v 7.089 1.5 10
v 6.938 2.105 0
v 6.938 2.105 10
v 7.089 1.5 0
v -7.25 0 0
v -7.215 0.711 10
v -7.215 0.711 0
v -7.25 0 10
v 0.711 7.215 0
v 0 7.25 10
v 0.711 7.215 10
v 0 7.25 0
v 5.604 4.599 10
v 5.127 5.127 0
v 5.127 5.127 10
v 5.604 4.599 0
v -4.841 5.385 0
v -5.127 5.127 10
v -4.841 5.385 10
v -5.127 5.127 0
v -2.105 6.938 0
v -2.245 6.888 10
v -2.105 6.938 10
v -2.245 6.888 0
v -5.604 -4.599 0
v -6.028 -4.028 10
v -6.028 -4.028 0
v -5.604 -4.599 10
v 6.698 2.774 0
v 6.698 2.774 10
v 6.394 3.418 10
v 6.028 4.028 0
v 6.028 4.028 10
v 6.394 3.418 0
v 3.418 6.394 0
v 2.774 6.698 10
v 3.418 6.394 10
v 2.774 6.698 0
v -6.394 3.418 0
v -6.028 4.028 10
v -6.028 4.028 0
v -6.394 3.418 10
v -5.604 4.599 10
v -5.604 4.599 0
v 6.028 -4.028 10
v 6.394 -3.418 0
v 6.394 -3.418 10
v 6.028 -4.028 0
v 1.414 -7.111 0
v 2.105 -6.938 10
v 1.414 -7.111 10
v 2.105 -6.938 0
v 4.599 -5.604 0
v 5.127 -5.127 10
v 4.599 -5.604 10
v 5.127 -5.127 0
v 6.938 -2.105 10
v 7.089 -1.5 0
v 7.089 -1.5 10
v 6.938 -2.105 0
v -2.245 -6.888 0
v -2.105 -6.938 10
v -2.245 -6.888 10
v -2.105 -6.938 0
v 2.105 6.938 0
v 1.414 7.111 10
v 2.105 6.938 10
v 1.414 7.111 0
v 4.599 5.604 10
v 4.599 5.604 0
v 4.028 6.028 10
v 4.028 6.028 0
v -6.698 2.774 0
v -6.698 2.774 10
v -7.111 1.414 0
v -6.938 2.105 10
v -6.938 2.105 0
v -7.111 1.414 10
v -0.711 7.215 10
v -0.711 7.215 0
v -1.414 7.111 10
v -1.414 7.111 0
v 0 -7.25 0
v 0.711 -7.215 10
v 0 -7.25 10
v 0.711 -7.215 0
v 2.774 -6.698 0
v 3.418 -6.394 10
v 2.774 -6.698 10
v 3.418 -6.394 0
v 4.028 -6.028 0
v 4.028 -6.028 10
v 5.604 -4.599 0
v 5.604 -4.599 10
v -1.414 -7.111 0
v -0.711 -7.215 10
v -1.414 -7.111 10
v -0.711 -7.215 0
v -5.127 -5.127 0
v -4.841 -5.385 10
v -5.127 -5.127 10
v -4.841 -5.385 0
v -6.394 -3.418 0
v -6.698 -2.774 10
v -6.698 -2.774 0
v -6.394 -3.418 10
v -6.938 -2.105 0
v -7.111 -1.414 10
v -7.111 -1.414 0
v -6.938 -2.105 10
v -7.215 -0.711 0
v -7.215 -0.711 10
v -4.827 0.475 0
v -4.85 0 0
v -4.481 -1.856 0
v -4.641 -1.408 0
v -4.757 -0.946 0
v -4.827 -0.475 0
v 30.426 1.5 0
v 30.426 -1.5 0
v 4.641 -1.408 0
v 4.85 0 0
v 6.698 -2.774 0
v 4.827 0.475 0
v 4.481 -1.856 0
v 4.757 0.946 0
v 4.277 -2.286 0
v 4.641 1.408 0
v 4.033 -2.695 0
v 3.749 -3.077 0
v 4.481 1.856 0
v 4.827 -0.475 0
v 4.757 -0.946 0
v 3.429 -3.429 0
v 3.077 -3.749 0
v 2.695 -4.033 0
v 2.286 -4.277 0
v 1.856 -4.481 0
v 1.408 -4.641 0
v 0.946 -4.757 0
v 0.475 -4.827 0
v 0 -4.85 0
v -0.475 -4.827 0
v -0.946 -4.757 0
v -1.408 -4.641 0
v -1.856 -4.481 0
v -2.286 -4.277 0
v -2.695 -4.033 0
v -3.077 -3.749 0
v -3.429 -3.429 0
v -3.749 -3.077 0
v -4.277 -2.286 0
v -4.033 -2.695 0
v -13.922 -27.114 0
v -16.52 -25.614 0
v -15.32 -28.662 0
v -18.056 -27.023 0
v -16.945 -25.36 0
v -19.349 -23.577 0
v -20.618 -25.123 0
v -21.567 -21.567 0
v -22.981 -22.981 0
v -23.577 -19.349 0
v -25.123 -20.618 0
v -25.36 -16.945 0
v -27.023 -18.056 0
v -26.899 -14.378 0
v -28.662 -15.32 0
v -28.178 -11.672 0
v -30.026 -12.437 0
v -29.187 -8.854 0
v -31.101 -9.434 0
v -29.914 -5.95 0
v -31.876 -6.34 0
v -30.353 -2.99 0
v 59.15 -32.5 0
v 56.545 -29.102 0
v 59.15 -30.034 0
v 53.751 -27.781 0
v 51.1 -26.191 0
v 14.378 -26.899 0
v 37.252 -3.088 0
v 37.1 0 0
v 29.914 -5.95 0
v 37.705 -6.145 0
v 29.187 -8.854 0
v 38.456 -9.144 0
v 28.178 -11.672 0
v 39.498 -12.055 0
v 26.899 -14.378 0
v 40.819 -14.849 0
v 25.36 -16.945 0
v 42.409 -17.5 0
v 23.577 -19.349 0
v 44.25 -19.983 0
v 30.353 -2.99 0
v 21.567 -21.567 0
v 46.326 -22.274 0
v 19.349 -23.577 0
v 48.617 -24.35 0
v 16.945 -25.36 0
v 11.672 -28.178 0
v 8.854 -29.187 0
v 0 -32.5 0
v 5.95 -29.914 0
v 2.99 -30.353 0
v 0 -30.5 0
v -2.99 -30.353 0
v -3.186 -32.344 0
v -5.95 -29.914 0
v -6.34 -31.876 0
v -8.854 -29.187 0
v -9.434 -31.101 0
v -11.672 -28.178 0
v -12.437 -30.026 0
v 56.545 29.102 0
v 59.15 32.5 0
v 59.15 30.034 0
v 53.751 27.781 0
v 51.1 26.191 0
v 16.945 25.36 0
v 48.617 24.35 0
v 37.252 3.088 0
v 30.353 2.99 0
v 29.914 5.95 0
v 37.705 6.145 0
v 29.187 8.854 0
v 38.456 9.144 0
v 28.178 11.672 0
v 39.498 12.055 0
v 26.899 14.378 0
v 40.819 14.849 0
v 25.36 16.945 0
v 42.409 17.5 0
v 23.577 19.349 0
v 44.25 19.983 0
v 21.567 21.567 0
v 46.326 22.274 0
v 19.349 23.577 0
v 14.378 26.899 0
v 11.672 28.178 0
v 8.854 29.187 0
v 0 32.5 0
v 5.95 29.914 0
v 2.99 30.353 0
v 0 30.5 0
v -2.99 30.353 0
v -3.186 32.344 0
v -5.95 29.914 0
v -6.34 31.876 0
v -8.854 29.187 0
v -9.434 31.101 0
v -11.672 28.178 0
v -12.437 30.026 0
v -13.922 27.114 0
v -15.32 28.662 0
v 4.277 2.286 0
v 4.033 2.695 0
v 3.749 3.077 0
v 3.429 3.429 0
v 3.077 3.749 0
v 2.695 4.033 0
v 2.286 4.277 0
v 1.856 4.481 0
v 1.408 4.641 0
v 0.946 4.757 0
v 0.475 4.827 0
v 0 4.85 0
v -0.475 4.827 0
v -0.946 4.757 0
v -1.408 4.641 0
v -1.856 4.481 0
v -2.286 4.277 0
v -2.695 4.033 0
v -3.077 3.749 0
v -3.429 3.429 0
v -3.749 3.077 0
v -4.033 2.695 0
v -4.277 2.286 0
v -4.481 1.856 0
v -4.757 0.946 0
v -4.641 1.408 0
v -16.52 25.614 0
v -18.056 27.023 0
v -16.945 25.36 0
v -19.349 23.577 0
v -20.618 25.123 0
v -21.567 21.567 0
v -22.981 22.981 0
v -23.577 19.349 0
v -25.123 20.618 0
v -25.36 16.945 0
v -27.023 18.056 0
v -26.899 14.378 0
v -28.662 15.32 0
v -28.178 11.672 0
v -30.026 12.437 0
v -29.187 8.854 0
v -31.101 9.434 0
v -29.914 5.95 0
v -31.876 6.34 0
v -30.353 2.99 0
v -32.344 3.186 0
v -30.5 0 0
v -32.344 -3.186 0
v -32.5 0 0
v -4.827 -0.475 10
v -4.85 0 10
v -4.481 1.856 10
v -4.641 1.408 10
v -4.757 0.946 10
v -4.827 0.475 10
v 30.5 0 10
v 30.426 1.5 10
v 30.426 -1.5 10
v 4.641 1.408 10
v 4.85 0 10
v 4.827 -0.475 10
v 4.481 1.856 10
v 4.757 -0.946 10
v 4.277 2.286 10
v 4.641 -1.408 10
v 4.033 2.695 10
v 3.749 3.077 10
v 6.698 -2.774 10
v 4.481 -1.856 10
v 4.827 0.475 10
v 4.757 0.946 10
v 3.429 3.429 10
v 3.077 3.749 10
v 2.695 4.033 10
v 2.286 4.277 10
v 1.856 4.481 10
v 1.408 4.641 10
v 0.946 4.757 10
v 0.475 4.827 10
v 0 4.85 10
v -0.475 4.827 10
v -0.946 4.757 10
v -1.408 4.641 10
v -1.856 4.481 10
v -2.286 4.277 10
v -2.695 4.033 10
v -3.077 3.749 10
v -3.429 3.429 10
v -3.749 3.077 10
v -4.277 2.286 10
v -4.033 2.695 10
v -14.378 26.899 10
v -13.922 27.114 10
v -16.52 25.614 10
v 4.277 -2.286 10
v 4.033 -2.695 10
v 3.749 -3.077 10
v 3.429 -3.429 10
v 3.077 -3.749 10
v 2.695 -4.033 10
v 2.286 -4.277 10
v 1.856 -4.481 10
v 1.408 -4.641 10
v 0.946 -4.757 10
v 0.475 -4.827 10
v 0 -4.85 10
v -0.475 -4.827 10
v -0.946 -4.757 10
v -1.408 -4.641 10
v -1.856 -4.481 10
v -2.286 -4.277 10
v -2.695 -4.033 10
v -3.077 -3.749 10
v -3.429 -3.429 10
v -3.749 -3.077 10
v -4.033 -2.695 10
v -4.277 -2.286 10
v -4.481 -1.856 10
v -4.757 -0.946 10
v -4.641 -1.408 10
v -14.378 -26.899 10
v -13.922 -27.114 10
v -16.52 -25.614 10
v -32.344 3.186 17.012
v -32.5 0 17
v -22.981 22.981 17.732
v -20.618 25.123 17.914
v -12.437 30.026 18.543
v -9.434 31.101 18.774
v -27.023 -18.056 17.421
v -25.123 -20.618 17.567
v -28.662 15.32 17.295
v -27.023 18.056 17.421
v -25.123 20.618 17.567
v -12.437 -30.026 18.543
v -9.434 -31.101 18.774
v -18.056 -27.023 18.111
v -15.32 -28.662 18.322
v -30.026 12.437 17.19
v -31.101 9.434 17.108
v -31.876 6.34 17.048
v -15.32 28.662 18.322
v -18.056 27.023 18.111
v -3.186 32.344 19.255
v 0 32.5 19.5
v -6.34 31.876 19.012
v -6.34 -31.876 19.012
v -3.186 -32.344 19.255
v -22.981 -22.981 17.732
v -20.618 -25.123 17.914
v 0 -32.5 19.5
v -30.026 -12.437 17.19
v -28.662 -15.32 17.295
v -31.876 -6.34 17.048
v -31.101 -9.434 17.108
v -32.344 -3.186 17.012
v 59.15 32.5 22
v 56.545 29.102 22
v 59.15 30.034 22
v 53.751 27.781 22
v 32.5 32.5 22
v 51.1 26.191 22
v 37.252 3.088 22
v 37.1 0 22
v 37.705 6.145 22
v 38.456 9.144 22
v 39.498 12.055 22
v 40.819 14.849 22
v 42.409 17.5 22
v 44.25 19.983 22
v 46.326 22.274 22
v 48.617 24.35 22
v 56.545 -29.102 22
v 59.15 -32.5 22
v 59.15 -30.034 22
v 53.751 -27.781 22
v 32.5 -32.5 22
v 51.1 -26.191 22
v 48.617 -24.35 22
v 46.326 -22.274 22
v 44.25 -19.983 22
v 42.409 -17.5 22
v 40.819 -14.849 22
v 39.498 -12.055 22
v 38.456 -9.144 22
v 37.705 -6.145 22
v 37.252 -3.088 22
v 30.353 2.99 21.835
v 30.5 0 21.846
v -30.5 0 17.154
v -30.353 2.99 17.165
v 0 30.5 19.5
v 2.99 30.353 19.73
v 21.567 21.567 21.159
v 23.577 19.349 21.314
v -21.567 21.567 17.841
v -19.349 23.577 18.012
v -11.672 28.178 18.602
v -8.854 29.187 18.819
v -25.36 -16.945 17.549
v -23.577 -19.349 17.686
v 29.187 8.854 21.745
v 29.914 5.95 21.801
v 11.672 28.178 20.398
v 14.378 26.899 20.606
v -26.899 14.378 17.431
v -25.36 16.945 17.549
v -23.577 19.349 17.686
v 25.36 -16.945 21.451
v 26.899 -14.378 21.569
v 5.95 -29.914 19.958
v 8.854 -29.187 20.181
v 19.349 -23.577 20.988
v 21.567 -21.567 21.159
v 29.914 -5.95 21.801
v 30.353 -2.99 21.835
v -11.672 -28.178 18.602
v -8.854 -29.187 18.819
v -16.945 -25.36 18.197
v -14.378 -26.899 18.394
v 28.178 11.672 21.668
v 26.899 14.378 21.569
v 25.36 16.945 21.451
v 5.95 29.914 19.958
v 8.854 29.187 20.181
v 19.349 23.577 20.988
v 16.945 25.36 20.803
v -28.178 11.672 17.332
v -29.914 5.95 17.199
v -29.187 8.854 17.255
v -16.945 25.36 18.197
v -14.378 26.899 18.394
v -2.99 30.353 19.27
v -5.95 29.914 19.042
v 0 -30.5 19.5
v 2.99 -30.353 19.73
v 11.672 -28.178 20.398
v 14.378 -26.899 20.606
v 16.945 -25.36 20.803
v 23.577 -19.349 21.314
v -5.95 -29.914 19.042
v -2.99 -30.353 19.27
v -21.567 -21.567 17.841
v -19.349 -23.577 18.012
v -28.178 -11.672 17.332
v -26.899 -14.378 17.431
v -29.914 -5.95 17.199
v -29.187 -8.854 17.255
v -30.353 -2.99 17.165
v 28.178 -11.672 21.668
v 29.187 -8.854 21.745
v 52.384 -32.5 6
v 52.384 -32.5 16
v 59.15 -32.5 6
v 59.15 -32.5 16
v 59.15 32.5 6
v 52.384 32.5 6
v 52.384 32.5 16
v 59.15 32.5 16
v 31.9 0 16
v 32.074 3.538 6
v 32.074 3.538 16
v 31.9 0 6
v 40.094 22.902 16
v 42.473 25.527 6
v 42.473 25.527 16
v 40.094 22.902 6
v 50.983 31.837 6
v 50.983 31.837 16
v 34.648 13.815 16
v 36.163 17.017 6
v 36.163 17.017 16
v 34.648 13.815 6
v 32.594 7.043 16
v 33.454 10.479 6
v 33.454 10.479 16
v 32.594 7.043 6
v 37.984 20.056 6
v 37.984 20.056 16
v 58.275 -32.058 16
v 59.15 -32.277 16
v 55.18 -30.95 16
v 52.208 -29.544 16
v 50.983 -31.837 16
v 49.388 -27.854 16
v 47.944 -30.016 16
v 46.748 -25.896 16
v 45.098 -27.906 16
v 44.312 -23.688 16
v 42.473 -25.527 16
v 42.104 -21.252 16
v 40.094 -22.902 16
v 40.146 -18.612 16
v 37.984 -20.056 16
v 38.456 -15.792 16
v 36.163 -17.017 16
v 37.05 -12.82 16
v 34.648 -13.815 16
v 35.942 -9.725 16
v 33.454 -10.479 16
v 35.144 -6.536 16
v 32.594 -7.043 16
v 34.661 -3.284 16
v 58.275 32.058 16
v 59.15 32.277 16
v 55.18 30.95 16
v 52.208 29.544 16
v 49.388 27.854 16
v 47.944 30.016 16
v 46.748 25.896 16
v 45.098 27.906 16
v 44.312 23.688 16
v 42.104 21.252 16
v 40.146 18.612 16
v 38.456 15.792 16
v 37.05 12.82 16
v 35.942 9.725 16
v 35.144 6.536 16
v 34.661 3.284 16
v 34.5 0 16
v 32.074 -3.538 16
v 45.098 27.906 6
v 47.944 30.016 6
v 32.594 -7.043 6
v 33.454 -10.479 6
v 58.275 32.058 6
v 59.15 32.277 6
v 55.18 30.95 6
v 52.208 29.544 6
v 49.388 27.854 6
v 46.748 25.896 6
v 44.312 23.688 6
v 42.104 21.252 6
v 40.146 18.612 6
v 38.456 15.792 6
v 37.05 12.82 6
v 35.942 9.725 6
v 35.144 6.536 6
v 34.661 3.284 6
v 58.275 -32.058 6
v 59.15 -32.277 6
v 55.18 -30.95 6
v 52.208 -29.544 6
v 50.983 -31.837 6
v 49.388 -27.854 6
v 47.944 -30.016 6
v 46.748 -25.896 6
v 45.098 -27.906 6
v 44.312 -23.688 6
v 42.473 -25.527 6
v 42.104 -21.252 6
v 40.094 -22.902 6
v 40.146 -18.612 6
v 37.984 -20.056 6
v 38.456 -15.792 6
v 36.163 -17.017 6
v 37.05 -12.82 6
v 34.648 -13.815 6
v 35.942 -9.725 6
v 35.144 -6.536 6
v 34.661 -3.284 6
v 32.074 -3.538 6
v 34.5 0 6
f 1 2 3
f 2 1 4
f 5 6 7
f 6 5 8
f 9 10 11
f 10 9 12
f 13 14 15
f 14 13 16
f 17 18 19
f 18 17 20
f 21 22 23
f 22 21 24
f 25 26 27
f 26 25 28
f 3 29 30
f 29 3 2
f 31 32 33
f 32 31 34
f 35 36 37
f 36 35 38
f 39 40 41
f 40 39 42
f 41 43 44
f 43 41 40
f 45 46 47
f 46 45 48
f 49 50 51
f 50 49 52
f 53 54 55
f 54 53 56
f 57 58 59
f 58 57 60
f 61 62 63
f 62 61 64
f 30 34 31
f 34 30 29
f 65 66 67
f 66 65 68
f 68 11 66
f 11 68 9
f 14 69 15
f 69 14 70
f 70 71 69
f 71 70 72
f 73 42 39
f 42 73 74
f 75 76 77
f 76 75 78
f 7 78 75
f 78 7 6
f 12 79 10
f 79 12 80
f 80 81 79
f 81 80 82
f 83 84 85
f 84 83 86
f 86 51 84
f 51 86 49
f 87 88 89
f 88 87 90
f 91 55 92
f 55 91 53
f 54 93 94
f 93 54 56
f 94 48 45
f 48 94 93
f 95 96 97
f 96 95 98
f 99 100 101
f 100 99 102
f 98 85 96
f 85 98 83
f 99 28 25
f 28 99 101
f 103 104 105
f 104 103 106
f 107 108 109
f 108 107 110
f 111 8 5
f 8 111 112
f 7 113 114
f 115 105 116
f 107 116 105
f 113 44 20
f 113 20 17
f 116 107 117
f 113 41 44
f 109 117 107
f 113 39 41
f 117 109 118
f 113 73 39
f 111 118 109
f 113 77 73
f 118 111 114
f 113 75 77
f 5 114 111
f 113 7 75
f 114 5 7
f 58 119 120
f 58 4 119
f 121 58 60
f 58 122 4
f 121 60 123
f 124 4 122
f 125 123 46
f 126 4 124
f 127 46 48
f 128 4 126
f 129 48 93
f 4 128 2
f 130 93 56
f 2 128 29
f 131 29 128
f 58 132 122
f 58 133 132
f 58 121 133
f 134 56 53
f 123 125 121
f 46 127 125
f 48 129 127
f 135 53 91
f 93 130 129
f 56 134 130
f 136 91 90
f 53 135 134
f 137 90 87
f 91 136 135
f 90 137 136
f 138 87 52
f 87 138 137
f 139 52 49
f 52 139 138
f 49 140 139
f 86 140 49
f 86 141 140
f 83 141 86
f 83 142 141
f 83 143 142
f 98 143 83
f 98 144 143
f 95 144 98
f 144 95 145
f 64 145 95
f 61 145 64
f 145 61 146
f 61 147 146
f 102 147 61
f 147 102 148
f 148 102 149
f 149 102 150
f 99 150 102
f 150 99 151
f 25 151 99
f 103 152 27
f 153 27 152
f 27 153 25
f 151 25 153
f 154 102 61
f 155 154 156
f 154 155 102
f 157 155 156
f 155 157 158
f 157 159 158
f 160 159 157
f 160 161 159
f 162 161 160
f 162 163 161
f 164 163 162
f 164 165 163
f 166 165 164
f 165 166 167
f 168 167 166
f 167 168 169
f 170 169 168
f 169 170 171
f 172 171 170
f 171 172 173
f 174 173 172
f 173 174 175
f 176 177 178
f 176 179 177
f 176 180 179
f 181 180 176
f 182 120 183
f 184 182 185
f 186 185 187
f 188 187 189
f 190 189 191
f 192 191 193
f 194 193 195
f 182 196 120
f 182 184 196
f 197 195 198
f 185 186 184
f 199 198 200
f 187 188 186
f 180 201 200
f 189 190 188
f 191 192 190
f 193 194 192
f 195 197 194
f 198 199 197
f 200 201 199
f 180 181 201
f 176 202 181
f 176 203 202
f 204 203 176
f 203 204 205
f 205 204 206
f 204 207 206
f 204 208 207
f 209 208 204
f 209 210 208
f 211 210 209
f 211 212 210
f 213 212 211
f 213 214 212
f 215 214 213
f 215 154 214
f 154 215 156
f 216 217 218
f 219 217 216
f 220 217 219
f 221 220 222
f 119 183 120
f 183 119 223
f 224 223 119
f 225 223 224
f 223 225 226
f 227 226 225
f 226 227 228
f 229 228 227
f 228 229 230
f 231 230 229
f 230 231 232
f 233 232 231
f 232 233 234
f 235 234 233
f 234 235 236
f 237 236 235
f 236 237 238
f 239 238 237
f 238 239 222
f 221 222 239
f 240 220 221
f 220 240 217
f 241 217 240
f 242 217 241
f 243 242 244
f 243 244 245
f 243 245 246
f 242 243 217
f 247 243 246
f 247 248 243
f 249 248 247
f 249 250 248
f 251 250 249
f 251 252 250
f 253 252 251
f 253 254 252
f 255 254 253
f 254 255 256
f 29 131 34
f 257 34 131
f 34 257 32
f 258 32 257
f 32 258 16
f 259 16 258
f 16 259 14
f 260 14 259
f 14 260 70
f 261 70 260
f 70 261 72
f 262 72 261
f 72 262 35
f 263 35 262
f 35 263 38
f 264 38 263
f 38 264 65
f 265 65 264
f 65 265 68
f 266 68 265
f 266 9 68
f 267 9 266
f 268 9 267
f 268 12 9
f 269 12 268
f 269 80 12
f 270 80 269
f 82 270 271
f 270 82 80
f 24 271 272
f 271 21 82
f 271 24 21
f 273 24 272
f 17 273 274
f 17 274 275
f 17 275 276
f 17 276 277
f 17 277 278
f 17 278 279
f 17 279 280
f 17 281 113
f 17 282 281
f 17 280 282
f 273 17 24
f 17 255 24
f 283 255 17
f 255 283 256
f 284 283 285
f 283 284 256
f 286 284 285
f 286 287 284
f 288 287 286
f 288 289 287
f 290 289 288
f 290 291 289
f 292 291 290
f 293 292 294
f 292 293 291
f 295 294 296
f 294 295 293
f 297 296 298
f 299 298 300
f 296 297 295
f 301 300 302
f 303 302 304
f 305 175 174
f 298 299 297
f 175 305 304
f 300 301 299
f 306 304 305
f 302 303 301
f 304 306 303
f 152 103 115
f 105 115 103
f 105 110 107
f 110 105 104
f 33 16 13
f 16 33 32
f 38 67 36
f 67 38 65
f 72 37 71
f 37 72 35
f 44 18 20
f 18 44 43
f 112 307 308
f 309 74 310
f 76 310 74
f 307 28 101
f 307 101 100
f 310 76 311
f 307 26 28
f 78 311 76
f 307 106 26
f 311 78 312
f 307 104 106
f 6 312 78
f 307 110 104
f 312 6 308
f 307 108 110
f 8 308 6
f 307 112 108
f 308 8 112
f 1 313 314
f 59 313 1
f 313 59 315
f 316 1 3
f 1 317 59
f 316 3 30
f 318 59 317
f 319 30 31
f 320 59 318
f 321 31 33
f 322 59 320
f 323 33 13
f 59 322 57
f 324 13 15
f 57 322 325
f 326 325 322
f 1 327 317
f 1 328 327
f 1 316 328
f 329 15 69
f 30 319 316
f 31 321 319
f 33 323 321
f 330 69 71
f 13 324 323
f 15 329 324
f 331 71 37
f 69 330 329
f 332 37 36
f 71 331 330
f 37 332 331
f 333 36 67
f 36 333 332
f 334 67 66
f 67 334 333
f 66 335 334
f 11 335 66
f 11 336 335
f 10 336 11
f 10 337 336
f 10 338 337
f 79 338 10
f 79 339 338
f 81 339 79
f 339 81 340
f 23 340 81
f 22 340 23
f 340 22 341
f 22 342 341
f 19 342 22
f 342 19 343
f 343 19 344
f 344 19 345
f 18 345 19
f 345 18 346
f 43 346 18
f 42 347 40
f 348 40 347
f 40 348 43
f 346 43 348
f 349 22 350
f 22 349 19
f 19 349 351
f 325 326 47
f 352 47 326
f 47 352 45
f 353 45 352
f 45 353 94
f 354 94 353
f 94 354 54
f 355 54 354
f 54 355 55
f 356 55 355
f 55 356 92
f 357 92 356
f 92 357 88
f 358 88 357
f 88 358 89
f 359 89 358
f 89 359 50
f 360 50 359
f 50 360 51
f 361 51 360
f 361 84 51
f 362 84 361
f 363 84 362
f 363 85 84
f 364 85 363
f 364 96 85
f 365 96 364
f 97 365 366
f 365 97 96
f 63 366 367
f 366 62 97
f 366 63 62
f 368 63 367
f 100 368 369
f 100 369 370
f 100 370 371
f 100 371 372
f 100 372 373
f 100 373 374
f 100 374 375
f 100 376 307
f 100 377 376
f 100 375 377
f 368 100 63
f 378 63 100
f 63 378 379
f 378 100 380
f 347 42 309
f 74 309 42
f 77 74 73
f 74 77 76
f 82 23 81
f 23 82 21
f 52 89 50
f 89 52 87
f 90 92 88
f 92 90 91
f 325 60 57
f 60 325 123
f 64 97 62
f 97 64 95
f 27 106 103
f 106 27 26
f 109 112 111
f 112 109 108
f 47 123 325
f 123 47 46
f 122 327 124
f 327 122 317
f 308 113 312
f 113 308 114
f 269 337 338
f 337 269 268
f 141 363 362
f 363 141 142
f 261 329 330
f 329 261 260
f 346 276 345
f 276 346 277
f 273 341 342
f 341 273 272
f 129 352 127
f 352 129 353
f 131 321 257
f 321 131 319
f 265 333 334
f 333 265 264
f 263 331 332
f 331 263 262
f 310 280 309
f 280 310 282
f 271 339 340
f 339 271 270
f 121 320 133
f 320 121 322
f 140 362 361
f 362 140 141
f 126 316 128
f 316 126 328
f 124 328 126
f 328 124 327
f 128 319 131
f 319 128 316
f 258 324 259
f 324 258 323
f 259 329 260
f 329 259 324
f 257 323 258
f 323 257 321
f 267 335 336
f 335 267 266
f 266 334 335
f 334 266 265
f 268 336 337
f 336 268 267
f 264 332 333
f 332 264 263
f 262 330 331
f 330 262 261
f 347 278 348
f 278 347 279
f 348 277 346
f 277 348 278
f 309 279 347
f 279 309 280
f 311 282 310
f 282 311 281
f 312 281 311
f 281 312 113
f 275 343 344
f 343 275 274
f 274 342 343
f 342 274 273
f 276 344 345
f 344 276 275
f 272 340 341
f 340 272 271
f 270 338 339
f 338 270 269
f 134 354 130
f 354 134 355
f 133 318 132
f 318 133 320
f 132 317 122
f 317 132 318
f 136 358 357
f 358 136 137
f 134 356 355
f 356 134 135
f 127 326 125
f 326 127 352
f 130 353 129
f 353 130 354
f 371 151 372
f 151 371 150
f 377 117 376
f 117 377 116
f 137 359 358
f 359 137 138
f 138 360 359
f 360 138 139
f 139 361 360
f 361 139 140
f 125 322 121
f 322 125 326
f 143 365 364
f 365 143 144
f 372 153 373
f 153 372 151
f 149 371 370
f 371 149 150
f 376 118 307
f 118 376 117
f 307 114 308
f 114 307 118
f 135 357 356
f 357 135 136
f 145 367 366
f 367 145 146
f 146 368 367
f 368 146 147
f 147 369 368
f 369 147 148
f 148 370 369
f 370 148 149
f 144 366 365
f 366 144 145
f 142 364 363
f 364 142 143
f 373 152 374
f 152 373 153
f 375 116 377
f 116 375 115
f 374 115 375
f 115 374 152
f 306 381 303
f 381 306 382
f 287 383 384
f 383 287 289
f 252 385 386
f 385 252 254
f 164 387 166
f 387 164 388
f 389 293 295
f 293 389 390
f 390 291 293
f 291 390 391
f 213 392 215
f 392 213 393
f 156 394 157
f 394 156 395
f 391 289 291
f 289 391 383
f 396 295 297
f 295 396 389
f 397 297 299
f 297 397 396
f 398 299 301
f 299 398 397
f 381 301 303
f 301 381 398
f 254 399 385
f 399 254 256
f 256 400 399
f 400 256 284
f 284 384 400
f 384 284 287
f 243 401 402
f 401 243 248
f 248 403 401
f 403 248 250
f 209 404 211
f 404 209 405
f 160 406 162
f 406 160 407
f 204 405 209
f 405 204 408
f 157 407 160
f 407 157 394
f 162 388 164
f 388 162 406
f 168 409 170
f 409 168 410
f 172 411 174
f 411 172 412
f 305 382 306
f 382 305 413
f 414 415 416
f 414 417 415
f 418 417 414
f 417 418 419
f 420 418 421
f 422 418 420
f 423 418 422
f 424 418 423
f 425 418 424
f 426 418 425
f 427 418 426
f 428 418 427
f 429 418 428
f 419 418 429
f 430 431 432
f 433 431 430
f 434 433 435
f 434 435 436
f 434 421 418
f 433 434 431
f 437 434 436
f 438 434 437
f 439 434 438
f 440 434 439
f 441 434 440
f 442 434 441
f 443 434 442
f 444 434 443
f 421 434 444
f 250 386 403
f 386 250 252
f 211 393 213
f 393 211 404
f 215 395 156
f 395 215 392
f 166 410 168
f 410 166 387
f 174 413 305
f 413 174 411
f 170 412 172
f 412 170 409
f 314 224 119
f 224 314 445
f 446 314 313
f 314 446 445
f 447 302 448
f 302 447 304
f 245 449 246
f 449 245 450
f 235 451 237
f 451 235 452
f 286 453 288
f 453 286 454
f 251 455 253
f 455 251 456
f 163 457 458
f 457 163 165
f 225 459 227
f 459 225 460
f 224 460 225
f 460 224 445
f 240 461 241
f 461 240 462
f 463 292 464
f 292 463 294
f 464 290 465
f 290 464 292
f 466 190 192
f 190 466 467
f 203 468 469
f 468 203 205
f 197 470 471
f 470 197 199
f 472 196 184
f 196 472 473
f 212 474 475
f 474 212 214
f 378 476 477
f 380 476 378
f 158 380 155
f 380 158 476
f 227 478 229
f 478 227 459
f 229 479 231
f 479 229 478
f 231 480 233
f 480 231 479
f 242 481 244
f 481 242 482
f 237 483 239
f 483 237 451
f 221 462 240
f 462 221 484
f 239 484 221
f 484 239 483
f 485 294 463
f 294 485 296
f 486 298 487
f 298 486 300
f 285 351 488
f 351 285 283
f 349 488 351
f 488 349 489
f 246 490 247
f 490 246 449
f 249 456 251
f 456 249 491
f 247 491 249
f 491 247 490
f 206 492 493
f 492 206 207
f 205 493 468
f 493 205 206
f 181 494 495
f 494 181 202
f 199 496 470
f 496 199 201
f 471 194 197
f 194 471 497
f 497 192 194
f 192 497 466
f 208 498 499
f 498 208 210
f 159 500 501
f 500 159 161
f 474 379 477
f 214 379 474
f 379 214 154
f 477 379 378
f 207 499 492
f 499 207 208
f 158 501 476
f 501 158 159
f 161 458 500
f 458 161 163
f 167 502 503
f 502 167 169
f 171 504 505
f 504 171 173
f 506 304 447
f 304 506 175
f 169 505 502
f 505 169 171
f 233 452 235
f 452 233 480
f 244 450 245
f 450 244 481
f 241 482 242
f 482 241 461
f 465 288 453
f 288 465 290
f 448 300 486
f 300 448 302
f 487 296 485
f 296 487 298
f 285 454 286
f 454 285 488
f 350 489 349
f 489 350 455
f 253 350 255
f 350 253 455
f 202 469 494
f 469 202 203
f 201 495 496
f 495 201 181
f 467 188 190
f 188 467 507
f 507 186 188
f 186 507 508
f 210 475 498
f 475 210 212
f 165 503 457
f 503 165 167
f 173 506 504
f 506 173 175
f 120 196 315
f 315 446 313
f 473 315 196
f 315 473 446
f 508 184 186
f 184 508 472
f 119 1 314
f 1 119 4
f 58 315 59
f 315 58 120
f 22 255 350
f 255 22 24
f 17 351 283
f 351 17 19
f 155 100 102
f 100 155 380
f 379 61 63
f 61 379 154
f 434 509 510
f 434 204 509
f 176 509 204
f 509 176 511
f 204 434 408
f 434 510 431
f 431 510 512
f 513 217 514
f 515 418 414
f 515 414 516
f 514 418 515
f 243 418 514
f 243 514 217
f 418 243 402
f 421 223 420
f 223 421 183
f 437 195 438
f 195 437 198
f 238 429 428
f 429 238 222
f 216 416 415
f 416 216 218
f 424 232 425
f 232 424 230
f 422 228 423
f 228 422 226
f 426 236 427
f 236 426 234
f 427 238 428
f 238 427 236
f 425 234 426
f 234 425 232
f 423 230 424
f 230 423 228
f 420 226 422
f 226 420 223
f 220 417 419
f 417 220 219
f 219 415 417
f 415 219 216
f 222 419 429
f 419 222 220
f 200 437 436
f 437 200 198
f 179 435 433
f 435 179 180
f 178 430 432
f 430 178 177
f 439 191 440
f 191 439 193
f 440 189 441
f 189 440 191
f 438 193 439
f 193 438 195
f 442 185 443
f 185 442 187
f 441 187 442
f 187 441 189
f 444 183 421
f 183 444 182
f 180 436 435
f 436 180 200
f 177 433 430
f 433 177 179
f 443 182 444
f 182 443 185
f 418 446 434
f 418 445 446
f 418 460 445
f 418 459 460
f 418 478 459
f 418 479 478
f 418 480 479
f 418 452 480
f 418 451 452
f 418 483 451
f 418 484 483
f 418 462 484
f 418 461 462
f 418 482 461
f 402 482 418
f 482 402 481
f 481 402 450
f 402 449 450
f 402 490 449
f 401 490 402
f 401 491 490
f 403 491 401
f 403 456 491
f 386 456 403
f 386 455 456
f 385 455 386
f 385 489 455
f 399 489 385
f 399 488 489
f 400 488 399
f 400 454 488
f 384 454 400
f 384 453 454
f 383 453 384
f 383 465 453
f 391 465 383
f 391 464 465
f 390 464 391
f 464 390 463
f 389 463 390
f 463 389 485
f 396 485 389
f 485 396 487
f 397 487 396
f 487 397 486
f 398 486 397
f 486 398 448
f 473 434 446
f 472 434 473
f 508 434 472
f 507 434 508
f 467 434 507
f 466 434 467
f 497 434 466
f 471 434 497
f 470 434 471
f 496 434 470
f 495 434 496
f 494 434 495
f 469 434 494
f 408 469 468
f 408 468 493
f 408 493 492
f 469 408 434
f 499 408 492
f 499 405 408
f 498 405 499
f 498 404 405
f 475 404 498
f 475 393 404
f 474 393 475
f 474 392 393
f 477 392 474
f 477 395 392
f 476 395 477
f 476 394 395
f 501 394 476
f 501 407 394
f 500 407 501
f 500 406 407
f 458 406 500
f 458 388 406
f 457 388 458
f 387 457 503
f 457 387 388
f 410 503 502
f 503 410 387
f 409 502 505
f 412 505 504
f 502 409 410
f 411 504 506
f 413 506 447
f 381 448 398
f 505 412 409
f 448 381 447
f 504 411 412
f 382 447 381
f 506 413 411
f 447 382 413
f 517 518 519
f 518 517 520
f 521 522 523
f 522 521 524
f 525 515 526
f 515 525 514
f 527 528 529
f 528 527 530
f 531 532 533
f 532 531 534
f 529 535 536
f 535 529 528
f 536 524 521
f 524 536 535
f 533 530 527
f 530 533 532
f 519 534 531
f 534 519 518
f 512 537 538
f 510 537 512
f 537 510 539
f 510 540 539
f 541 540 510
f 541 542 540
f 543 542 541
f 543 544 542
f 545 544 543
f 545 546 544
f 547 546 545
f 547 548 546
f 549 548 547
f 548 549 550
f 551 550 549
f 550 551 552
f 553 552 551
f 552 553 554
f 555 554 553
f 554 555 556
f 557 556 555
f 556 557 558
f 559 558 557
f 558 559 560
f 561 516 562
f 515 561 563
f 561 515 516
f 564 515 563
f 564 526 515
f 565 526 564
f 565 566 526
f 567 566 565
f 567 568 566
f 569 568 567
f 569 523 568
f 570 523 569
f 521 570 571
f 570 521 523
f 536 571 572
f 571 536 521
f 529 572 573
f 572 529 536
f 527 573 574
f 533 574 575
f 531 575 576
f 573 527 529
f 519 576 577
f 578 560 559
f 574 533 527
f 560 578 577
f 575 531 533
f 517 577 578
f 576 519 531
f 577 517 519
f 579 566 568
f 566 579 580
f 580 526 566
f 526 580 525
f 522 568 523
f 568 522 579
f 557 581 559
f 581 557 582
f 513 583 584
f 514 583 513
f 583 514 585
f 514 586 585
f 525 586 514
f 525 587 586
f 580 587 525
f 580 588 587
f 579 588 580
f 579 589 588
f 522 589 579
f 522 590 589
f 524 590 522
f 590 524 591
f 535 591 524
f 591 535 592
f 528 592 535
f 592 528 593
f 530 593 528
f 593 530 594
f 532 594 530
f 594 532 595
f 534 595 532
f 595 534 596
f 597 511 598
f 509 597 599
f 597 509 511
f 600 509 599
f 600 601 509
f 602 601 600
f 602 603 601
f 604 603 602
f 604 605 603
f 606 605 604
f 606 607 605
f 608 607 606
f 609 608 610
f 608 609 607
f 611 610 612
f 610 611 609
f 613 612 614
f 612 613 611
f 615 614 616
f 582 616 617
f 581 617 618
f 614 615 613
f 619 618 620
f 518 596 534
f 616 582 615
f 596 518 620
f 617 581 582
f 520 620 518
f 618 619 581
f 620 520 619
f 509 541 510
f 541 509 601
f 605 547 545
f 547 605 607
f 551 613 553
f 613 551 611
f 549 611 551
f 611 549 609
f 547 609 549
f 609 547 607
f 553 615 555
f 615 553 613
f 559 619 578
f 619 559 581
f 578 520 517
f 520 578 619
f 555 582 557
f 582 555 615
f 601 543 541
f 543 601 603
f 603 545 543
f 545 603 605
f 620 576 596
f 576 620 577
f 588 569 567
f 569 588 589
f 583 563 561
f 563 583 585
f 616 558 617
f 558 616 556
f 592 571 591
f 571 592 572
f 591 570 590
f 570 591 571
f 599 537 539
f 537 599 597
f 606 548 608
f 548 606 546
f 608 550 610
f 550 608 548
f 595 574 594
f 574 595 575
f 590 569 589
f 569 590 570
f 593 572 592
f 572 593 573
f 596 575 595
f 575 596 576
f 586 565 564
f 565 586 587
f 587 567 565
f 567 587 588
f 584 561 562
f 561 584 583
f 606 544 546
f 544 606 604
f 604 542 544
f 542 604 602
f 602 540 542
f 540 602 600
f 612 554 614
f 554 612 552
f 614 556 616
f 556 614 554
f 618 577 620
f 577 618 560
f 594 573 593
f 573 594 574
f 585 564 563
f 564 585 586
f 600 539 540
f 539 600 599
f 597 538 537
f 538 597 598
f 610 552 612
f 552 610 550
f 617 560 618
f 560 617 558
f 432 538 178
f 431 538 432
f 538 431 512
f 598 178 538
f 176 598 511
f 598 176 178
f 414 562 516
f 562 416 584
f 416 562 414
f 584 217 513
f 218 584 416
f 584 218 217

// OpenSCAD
/*
 * Parametric sketch of a fan enclosure: a motor hub, a propeller guard ring connected to
 * the hub by spokes, and a flat ziptie-mount tab.
 *
 * This is a rough structural sketch, NOT dimensionally matched to the existing hand-modeled
 * Fusion 360 parts in 3dFiles/ - the numbers below (wall thicknesses, tab size, hub height)
 * are guesses. Measure the real parts (calipers, or open one of the existing STLs) and
 * correct the defaults before trusting a print of this.
 *
 * Usage:
 *   Open directly in the OpenSCAD GUI to tweak parameters with the Customizer, or render
 *   headlessly with overrides, e.g.:
 *     openscad -o out.stl -D motorDiameter=8.5 -D propDiameter=55 -D bottleDiameter=63 FanEnclosure.scad
 */

// --- Parameters (override with -D on the CLI, or the Customizer in the GUI) ---

motorDiameter = 8.5;   // mm - motor can diameter (from docs/materials/motorsAndProps.csv) (adjustable)
motorAxleLength = 6;
motorMountDepth = 10;  // mm - how far the motor is held/gripped by the hub
propDiameter = 55;     // mm - propeller diameter (adjustable)
bottleDiameter = 63;   // mm - bottle diameter near the neck, where the real mount actually sits
                       // (see note below) - PLACEHOLDER, measure per bottle size (adjustable)

hubClearance = 0.6;    // mm - extra radius so the motor is a friction/glue fit, not press-fit
hubWallThickness = 2.4; // mm
guardClearance = 3;    // mm - gap between prop tip and the inside of the guard ring
guardThickness = 2;    // mm - guard ring cross-section thickness

spokeWidth = 3;

// Mount tab: the bottom mount is cut by the bottle
tabThickness = 2;       // mm
zipTieSlotThickness = 2.6;
zipTieSlotLength = 10;

$fn = 64; // smoothness for circles/cylinders - lower for faster preview renders

// --- Derived dimensions ---

spokeCount = propDiameter > 55 ? 5 : 3;

minPartHeight = motorMountDepth + motorAxleLength + 1;
partHeight = minPartHeight + 5;

hubOuterRadius = motorDiameter / 2 + hubClearance + hubWallThickness;
guardInnerRadius = propDiameter / 2 + guardClearance;
guardOuterRadius = guardInnerRadius + guardThickness;

blockLength = guardOuterRadius + tabThickness + tabThickness + bottleDiameter / 2;
blockWidth = 2 * guardOuterRadius;

module motor_hub() {
  difference() {
    cylinder(h = motorMountDepth, r = hubOuterRadius);
    translate([0, 0, -1])
      cylinder(h = motorMountDepth + tabThickness, r = motorDiameter / 2 + hubClearance);
  }
}

module guard_ring() {
  difference() {
    cylinder(h = partHeight, r = guardOuterRadius);
    translate([0, 0, -1])
      cylinder(h = partHeight + 2, r = guardInnerRadius);
  }
}

module spokes() {
  for (i = [0 : spokeCount - 1]) {
    rotate([0, 0, i * 360 / spokeCount])
      translate([hubOuterRadius - 0.5, -spokeWidth / 2, 0])
        cube([guardInnerRadius - hubOuterRadius + 1, spokeWidth, motorMountDepth]);
  }
}

module holder(){
  blockLength = guardOuterRadius + tabThickness + zipTieSlotThickness + bottleDiameter / 2;
  blockWidth = 2 * guardOuterRadius;

  difference(){
  difference(){
    translate([0, -blockWidth / 2, 0])
      cube([blockLength, blockWidth, partHeight]);
    translate([blockLength, 0, -1])
      cylinder(h = partHeight + 2, r = bottleDiameter / 2);
  };
      translate([0, 0, -1])
      cylinder(h = partHeight + 2, r = guardInnerRadius);
  }
  }

module slant_cutter() {
  angle = atan((partHeight - minPartHeight) / (2 * guardOuterRadius));
  translate([-guardOuterRadius, guardOuterRadius, minPartHeight])
    rotate([angle, 0, 270])
      cube([guardOuterRadius * 2, guardOuterRadius * 4, guardOuterRadius * 2]);
}

module bottom_cutter(){
  cutDistance = (bottleDiameter / 2) * 0.3;
  color([1, 0, 0])
    translate([(guardOuterRadius+bottleDiameter/2 + 2 + zipTieSlotThickness - cutDistance), -guardOuterRadius, 0])
      cube([(bottleDiameter / 2) * 0.5, guardOuterRadius * 2, partHeight]);
}

module ziptie_ring() {
  zipTieInnerRadius = bottleDiameter / 2 + 2;
  zipTieOuterRadius = zipTieInnerRadius + zipTieSlotThickness;

  color([0, 0, 0])
    translate([blockLength, 0, (partHeight-zipTieSlotLength) / 2])
      difference() {
        cylinder(h = zipTieSlotLength, r = zipTieOuterRadius);
        translate([0, 0, -1])
          cylinder(h = zipTieSlotLength + 2, r = zipTieInnerRadius);
      }
}

module debug_point() {
  translate([-guardOuterRadius, -guardOuterRadius, minPartHeight])
    sphere(r = 2, $fn = 16);
}

module bottle() {
  color([0.2, 0.5, 0.8])
    translate([blockLength, 0, 0])
      cylinder(h = partHeight * 1.5, r = bottleDiameter / 2);
}

module fan_enclosure() {
  //ziptie_ring();

  difference(){
  difference(){
  difference() {
    union() {
      motor_hub();
      guard_ring();
      spokes();
      holder();
    }
    slant_cutter();
    }
    ziptie_ring();
  }
  bottom_cutter();
  }
  //bottle();
}

fan_enclosure();
